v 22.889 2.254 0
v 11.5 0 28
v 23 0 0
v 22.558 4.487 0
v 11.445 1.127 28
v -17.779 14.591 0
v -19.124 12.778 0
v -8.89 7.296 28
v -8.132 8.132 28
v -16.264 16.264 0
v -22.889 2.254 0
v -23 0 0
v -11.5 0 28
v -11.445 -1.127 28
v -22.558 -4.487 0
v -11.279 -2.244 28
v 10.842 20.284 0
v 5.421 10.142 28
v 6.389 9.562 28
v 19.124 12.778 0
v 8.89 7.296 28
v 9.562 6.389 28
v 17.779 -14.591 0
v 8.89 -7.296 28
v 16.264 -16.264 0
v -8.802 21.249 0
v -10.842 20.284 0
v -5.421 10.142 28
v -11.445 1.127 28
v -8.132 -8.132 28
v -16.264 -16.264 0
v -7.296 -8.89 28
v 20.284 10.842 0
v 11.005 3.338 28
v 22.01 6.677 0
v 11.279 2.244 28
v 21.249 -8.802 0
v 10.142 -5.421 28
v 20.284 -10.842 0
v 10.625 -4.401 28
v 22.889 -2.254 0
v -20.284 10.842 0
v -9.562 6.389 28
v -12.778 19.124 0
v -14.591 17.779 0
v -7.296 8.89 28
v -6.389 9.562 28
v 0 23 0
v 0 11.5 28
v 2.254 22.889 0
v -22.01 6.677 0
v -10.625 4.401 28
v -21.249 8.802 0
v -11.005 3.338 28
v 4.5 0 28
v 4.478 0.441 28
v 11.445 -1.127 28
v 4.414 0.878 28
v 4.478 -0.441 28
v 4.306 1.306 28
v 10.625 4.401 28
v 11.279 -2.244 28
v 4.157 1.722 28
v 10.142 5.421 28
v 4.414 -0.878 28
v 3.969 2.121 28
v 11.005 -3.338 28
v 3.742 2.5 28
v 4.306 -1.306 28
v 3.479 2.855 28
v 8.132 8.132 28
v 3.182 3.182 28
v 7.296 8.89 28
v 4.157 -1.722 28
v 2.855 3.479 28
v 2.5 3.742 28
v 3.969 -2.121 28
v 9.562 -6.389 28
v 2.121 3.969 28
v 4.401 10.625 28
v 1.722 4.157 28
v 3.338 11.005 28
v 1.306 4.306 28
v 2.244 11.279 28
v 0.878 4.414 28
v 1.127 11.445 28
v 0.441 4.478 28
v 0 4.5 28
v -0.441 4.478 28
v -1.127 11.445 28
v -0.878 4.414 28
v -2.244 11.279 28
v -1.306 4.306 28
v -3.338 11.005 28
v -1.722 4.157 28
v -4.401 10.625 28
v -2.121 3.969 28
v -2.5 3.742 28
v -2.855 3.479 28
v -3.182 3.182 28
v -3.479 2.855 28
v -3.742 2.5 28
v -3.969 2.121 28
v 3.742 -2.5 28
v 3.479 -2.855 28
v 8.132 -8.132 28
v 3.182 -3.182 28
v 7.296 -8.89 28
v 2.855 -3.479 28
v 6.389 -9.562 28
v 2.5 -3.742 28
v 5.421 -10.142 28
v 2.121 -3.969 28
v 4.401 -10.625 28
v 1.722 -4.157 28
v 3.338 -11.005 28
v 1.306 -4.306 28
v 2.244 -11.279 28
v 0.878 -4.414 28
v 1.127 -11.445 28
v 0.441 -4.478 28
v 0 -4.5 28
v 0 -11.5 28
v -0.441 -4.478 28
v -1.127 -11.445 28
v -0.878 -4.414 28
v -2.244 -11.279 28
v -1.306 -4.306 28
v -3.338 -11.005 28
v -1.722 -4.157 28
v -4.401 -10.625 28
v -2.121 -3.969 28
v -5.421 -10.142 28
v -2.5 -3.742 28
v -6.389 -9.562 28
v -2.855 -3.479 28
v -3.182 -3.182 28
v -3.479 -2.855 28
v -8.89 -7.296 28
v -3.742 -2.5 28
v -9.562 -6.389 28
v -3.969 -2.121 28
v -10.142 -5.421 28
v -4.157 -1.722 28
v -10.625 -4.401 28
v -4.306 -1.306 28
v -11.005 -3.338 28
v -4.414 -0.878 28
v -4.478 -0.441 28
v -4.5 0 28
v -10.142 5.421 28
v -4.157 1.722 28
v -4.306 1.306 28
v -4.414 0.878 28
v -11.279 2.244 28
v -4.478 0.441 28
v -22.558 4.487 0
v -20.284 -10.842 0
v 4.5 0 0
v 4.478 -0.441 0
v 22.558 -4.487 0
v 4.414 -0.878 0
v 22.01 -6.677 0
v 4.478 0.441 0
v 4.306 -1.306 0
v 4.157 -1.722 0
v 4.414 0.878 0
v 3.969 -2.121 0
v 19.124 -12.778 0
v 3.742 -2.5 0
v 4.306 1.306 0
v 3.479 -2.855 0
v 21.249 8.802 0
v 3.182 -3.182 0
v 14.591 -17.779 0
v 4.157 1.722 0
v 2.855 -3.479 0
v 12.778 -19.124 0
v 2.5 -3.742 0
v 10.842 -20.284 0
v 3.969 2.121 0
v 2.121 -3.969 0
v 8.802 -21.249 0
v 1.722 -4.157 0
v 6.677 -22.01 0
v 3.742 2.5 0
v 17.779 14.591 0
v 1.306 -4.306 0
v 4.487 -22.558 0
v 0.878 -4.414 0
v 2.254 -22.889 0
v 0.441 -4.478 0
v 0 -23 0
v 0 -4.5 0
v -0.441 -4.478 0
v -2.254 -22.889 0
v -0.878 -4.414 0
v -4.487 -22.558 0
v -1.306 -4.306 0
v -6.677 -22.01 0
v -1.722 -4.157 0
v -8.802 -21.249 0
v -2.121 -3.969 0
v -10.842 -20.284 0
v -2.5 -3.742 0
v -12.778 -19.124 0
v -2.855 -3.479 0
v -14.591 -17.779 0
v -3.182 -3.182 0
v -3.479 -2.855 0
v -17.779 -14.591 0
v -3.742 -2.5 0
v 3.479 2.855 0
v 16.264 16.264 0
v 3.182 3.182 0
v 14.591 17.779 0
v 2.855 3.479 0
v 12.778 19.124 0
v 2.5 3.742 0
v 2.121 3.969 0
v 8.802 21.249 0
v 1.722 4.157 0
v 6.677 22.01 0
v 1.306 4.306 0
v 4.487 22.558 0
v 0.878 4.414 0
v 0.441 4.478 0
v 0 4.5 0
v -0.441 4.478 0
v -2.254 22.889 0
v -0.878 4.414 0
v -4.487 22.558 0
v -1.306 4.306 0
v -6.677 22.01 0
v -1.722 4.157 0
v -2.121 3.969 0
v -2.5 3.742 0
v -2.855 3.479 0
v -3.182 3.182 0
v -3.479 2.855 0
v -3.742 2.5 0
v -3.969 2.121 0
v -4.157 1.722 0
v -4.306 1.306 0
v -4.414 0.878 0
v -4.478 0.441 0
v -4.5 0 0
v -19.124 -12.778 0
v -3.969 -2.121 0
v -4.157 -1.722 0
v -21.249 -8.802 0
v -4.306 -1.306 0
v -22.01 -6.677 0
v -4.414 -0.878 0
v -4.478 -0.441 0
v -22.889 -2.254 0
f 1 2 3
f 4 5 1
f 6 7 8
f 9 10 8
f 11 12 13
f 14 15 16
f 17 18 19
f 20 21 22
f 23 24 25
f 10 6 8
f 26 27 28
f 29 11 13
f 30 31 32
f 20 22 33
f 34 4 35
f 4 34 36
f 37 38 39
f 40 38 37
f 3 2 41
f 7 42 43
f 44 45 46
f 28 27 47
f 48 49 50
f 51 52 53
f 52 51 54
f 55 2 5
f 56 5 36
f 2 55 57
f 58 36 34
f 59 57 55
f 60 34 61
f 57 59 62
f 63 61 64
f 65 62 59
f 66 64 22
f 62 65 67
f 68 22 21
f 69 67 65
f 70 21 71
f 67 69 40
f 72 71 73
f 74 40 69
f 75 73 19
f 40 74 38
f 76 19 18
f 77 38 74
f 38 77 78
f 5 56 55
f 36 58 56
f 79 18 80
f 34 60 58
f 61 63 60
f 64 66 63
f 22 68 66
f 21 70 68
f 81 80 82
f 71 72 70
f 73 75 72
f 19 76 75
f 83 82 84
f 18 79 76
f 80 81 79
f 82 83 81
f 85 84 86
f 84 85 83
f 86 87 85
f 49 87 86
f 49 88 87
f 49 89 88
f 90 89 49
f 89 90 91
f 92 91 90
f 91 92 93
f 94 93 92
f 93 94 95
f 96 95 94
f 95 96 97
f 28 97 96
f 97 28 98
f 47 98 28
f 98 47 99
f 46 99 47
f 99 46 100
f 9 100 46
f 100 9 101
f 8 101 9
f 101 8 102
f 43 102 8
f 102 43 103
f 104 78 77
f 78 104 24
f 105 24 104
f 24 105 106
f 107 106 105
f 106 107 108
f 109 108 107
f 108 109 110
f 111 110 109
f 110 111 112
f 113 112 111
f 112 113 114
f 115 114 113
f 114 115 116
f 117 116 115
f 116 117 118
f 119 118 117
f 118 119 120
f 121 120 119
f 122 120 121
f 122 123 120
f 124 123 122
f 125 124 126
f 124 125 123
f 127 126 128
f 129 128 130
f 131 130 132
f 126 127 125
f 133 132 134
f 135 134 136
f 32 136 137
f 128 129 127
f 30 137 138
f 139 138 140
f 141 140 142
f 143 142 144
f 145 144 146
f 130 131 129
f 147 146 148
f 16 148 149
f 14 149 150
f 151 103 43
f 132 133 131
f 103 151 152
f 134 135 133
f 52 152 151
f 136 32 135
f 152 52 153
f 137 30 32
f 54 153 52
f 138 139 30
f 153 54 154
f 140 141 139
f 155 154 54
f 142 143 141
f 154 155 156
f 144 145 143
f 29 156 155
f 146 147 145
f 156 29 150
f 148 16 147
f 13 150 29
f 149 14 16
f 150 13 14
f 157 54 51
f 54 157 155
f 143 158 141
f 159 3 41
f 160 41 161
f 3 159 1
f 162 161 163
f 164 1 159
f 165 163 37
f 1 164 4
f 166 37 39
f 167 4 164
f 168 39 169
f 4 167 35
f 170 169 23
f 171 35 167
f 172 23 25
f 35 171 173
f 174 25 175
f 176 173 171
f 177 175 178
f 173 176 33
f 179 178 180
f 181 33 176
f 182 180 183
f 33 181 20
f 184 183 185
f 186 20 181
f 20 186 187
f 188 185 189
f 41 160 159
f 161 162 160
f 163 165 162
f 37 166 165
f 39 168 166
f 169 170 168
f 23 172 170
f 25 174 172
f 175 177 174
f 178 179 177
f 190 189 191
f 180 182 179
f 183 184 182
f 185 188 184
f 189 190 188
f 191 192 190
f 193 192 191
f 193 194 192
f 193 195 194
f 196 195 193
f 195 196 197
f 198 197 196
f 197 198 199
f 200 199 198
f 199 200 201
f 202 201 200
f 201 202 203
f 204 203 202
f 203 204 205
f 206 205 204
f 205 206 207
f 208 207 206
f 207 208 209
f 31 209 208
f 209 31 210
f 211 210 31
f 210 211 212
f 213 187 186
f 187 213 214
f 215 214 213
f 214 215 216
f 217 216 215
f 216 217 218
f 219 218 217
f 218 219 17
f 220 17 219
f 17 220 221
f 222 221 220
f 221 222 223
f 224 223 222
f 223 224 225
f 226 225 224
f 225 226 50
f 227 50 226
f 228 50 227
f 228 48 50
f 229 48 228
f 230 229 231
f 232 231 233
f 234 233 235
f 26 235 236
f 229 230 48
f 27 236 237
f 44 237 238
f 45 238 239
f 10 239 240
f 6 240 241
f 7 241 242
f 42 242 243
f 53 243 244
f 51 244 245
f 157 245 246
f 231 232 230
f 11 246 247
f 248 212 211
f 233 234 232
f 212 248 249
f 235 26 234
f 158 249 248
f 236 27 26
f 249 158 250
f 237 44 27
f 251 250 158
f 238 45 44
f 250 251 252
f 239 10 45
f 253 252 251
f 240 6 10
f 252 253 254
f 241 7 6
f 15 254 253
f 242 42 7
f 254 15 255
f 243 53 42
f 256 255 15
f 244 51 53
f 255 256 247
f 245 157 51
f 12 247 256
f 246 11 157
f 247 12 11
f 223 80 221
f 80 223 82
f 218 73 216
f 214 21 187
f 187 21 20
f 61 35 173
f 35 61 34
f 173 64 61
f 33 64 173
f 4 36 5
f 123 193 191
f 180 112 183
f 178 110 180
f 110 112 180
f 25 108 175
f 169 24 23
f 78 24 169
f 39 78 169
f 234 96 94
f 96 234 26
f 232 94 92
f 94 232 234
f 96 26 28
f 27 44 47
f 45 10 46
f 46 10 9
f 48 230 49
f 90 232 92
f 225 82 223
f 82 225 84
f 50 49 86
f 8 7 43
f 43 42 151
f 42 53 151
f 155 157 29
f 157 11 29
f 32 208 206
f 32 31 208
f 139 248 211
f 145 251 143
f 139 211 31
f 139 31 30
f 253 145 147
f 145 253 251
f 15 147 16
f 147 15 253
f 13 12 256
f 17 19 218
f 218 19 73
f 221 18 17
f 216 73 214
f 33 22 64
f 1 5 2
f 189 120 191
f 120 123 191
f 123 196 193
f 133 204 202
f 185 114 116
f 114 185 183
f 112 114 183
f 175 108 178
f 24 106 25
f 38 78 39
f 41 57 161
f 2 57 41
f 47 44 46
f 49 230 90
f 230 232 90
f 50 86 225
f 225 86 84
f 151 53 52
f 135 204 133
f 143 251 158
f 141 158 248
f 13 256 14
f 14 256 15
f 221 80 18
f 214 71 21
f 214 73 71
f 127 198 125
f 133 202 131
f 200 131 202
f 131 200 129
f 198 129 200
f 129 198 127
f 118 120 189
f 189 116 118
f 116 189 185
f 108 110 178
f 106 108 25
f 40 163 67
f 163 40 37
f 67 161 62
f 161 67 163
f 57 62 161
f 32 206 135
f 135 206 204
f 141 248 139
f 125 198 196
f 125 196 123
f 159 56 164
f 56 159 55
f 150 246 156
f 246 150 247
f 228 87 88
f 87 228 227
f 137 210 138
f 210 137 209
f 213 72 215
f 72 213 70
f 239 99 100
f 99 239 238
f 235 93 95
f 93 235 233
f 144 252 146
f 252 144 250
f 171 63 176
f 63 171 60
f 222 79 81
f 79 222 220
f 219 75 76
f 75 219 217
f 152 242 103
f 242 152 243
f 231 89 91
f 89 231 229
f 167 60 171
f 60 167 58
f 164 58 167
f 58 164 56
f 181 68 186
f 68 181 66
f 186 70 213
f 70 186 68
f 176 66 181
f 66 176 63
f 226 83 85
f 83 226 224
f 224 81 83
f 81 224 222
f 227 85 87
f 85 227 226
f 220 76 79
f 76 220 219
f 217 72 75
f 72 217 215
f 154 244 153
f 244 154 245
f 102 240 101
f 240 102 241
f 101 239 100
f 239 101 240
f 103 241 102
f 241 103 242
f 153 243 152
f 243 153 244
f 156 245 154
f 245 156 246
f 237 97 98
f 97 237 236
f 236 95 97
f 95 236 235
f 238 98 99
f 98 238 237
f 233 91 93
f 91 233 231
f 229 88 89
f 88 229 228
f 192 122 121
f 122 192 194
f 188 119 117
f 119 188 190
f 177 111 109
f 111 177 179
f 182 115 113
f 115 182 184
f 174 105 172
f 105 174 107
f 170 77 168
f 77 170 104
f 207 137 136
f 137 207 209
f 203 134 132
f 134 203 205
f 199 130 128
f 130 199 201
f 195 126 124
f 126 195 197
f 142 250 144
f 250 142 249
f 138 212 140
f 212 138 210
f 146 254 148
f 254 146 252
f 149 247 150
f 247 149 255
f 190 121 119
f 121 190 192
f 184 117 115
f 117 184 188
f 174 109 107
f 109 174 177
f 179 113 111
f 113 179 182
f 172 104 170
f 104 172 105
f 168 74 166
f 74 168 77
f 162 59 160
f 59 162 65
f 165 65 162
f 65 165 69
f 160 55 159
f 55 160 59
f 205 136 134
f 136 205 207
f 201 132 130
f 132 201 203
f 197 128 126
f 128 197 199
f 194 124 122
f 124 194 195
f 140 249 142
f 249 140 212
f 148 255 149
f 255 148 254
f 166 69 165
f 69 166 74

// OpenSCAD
GIMBLE_DIAMETER=46;
THICKNESS=1;
CENTER_DIAMETER=GIMBLE_DIAMETER/2;
CENTER_HEIGHT=28;
HOLE_DIAMETER=9;
$fn=64;

difference() {
  cylinder(r1=GIMBLE_DIAMETER/2, r2=CENTER_DIAMETER/2, h=CENTER_HEIGHT);
  cylinder(r=HOLE_DIAMETER/2, h=CENTER_HEIGHT*2);
}
